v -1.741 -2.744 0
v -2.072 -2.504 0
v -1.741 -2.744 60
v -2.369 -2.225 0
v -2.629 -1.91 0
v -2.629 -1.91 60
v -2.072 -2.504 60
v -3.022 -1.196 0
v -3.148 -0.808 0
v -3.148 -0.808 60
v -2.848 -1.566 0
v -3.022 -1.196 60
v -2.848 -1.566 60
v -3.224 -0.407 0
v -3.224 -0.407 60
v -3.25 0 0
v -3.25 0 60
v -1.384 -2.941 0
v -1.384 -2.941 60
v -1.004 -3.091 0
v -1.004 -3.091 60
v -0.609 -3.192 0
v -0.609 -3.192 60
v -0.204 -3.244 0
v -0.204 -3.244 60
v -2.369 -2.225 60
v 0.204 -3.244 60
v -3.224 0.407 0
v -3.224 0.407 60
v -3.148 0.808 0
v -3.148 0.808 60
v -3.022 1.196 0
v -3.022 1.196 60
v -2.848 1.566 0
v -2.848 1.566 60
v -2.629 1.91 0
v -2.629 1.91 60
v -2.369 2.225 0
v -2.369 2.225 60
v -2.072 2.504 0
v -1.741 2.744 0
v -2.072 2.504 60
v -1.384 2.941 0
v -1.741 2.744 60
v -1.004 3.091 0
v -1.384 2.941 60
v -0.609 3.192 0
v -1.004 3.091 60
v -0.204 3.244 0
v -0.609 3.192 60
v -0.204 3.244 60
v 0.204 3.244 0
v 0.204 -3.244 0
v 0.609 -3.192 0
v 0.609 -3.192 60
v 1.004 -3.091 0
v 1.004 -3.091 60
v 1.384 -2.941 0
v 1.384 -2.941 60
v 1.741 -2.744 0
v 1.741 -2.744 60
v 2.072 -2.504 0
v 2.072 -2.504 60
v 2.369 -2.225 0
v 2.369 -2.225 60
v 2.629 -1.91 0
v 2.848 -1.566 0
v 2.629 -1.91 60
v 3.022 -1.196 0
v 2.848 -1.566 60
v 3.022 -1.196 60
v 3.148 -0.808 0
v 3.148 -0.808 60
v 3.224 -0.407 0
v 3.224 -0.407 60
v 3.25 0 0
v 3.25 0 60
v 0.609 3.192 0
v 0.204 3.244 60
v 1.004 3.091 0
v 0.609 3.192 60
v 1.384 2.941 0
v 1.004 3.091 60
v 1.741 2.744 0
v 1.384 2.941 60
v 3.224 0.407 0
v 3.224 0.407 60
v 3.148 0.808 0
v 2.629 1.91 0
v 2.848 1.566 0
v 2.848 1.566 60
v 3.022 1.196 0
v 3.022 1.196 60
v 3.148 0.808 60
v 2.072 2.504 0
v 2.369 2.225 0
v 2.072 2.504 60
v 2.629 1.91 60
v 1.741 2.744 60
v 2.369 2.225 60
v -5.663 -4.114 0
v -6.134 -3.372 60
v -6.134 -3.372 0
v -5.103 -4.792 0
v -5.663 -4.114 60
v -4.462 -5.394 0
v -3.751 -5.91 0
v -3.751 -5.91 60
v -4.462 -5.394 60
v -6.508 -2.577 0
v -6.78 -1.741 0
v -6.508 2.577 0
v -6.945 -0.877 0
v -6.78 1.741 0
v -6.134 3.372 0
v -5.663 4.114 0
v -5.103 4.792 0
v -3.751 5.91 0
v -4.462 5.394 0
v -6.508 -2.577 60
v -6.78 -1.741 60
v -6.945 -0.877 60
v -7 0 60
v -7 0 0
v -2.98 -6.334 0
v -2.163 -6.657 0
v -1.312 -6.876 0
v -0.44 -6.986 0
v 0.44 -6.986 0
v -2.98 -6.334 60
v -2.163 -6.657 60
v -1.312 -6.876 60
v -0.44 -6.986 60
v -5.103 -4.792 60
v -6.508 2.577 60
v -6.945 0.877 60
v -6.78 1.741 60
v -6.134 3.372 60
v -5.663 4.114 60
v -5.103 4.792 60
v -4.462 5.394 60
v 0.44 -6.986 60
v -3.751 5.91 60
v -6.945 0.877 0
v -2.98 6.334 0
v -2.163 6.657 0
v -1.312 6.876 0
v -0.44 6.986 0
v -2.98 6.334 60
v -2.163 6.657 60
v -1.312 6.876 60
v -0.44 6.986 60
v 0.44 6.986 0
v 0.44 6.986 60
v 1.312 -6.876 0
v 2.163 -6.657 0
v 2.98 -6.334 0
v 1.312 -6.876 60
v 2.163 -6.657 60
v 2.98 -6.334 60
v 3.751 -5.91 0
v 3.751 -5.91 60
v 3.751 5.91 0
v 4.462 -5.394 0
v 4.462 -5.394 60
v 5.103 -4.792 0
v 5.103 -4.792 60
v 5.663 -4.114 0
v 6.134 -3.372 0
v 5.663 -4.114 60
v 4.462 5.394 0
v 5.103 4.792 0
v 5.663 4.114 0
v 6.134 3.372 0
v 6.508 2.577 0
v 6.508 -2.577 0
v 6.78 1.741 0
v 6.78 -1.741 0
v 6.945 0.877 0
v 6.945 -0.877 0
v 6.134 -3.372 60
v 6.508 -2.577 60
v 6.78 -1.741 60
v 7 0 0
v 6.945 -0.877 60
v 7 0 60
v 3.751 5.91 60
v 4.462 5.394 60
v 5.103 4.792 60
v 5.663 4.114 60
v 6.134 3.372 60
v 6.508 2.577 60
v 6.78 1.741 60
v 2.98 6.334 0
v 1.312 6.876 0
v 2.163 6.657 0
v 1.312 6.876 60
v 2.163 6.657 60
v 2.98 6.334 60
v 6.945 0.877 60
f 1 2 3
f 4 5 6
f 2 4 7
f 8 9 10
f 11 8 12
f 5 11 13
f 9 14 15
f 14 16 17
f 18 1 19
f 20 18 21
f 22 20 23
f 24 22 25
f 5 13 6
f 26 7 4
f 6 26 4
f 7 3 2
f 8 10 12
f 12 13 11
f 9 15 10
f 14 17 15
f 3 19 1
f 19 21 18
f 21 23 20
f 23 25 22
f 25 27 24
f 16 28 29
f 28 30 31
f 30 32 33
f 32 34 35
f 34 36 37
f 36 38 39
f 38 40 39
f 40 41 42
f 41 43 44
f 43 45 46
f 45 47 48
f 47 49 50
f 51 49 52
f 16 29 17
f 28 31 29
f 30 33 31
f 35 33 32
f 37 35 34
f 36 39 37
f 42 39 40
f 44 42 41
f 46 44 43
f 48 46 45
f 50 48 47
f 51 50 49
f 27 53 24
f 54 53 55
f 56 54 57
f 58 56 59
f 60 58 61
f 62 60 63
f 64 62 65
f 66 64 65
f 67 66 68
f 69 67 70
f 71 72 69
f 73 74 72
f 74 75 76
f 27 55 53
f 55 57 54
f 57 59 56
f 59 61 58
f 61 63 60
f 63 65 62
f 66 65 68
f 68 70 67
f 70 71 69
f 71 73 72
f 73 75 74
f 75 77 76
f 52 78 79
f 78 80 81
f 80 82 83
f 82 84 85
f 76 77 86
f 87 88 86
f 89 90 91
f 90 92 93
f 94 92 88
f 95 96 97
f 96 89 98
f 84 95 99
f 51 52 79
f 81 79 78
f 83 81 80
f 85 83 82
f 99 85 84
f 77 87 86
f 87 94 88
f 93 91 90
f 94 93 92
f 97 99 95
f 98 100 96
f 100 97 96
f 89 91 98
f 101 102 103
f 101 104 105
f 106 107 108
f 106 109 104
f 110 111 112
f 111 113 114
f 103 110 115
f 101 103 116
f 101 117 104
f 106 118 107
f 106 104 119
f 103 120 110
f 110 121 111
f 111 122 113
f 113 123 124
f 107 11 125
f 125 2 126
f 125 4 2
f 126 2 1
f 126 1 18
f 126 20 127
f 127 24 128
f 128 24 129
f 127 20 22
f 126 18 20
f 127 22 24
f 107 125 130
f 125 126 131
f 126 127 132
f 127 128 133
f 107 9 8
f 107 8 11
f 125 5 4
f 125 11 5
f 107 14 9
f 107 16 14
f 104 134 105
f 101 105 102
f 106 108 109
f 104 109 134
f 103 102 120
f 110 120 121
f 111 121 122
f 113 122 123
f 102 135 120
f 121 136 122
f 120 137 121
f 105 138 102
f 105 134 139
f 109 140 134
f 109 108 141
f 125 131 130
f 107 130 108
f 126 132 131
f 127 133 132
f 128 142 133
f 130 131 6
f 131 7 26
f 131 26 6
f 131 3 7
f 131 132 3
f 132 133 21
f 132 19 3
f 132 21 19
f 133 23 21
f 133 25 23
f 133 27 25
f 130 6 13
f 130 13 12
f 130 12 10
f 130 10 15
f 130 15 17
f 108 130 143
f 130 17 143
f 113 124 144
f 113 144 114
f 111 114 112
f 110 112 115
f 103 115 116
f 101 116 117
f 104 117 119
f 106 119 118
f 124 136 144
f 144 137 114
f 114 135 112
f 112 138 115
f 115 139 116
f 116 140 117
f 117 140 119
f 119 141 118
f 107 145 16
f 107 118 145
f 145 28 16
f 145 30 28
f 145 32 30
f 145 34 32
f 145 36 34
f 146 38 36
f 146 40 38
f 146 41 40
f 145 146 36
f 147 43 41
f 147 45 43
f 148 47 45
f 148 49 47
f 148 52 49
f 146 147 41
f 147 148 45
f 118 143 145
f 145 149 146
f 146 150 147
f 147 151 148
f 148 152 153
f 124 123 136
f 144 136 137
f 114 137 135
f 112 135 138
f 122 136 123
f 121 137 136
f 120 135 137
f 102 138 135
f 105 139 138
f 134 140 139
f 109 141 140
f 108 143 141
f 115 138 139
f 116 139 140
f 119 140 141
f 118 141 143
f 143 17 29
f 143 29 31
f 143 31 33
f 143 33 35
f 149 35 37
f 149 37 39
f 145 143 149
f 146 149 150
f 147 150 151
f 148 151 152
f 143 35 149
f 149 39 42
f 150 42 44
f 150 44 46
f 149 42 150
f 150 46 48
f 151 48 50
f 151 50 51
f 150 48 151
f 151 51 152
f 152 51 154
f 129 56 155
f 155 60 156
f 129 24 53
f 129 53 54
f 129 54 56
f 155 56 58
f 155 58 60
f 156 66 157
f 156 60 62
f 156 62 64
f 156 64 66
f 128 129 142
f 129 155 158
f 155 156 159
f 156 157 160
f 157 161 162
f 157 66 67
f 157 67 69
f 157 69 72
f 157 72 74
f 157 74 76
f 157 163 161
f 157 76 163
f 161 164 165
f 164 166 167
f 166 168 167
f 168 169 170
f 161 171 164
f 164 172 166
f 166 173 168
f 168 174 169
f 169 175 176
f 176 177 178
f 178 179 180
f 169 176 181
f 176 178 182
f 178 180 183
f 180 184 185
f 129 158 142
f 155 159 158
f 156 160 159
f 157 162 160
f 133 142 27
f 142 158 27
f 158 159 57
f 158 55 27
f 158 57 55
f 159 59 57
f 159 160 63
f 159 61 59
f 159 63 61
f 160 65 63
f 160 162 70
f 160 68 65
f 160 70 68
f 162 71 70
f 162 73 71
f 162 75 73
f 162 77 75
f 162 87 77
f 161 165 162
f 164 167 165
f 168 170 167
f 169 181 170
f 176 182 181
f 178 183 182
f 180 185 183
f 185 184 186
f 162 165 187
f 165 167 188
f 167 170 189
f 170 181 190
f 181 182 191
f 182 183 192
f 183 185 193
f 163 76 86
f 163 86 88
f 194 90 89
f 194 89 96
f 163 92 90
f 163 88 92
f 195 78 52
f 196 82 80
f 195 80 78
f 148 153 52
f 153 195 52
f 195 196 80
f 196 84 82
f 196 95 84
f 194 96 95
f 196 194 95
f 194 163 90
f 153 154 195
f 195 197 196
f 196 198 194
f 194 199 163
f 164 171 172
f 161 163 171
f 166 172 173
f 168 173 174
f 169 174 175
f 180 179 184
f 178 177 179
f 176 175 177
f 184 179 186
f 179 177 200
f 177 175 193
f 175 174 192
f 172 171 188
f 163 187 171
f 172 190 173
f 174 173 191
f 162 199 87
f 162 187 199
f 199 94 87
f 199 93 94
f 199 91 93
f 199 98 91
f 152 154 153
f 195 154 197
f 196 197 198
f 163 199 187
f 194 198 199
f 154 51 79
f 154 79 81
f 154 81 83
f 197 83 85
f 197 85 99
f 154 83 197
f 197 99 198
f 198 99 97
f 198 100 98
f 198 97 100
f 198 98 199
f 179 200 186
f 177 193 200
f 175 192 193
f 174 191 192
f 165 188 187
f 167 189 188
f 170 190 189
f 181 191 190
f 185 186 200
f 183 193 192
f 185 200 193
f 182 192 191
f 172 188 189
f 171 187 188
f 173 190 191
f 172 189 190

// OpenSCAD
$fn = 50;

difference() {
	union() {
		cylinder(h = 60, r = 7.0);
	}
	union() {
		translate(v = [0, 0, -100]) {
			cylinder(h = 200, r = 3.25);
		}
		translate(v = [0, 0, -100]) {
			cylinder(h = 200, r = 1.8);
		}
	}
}
